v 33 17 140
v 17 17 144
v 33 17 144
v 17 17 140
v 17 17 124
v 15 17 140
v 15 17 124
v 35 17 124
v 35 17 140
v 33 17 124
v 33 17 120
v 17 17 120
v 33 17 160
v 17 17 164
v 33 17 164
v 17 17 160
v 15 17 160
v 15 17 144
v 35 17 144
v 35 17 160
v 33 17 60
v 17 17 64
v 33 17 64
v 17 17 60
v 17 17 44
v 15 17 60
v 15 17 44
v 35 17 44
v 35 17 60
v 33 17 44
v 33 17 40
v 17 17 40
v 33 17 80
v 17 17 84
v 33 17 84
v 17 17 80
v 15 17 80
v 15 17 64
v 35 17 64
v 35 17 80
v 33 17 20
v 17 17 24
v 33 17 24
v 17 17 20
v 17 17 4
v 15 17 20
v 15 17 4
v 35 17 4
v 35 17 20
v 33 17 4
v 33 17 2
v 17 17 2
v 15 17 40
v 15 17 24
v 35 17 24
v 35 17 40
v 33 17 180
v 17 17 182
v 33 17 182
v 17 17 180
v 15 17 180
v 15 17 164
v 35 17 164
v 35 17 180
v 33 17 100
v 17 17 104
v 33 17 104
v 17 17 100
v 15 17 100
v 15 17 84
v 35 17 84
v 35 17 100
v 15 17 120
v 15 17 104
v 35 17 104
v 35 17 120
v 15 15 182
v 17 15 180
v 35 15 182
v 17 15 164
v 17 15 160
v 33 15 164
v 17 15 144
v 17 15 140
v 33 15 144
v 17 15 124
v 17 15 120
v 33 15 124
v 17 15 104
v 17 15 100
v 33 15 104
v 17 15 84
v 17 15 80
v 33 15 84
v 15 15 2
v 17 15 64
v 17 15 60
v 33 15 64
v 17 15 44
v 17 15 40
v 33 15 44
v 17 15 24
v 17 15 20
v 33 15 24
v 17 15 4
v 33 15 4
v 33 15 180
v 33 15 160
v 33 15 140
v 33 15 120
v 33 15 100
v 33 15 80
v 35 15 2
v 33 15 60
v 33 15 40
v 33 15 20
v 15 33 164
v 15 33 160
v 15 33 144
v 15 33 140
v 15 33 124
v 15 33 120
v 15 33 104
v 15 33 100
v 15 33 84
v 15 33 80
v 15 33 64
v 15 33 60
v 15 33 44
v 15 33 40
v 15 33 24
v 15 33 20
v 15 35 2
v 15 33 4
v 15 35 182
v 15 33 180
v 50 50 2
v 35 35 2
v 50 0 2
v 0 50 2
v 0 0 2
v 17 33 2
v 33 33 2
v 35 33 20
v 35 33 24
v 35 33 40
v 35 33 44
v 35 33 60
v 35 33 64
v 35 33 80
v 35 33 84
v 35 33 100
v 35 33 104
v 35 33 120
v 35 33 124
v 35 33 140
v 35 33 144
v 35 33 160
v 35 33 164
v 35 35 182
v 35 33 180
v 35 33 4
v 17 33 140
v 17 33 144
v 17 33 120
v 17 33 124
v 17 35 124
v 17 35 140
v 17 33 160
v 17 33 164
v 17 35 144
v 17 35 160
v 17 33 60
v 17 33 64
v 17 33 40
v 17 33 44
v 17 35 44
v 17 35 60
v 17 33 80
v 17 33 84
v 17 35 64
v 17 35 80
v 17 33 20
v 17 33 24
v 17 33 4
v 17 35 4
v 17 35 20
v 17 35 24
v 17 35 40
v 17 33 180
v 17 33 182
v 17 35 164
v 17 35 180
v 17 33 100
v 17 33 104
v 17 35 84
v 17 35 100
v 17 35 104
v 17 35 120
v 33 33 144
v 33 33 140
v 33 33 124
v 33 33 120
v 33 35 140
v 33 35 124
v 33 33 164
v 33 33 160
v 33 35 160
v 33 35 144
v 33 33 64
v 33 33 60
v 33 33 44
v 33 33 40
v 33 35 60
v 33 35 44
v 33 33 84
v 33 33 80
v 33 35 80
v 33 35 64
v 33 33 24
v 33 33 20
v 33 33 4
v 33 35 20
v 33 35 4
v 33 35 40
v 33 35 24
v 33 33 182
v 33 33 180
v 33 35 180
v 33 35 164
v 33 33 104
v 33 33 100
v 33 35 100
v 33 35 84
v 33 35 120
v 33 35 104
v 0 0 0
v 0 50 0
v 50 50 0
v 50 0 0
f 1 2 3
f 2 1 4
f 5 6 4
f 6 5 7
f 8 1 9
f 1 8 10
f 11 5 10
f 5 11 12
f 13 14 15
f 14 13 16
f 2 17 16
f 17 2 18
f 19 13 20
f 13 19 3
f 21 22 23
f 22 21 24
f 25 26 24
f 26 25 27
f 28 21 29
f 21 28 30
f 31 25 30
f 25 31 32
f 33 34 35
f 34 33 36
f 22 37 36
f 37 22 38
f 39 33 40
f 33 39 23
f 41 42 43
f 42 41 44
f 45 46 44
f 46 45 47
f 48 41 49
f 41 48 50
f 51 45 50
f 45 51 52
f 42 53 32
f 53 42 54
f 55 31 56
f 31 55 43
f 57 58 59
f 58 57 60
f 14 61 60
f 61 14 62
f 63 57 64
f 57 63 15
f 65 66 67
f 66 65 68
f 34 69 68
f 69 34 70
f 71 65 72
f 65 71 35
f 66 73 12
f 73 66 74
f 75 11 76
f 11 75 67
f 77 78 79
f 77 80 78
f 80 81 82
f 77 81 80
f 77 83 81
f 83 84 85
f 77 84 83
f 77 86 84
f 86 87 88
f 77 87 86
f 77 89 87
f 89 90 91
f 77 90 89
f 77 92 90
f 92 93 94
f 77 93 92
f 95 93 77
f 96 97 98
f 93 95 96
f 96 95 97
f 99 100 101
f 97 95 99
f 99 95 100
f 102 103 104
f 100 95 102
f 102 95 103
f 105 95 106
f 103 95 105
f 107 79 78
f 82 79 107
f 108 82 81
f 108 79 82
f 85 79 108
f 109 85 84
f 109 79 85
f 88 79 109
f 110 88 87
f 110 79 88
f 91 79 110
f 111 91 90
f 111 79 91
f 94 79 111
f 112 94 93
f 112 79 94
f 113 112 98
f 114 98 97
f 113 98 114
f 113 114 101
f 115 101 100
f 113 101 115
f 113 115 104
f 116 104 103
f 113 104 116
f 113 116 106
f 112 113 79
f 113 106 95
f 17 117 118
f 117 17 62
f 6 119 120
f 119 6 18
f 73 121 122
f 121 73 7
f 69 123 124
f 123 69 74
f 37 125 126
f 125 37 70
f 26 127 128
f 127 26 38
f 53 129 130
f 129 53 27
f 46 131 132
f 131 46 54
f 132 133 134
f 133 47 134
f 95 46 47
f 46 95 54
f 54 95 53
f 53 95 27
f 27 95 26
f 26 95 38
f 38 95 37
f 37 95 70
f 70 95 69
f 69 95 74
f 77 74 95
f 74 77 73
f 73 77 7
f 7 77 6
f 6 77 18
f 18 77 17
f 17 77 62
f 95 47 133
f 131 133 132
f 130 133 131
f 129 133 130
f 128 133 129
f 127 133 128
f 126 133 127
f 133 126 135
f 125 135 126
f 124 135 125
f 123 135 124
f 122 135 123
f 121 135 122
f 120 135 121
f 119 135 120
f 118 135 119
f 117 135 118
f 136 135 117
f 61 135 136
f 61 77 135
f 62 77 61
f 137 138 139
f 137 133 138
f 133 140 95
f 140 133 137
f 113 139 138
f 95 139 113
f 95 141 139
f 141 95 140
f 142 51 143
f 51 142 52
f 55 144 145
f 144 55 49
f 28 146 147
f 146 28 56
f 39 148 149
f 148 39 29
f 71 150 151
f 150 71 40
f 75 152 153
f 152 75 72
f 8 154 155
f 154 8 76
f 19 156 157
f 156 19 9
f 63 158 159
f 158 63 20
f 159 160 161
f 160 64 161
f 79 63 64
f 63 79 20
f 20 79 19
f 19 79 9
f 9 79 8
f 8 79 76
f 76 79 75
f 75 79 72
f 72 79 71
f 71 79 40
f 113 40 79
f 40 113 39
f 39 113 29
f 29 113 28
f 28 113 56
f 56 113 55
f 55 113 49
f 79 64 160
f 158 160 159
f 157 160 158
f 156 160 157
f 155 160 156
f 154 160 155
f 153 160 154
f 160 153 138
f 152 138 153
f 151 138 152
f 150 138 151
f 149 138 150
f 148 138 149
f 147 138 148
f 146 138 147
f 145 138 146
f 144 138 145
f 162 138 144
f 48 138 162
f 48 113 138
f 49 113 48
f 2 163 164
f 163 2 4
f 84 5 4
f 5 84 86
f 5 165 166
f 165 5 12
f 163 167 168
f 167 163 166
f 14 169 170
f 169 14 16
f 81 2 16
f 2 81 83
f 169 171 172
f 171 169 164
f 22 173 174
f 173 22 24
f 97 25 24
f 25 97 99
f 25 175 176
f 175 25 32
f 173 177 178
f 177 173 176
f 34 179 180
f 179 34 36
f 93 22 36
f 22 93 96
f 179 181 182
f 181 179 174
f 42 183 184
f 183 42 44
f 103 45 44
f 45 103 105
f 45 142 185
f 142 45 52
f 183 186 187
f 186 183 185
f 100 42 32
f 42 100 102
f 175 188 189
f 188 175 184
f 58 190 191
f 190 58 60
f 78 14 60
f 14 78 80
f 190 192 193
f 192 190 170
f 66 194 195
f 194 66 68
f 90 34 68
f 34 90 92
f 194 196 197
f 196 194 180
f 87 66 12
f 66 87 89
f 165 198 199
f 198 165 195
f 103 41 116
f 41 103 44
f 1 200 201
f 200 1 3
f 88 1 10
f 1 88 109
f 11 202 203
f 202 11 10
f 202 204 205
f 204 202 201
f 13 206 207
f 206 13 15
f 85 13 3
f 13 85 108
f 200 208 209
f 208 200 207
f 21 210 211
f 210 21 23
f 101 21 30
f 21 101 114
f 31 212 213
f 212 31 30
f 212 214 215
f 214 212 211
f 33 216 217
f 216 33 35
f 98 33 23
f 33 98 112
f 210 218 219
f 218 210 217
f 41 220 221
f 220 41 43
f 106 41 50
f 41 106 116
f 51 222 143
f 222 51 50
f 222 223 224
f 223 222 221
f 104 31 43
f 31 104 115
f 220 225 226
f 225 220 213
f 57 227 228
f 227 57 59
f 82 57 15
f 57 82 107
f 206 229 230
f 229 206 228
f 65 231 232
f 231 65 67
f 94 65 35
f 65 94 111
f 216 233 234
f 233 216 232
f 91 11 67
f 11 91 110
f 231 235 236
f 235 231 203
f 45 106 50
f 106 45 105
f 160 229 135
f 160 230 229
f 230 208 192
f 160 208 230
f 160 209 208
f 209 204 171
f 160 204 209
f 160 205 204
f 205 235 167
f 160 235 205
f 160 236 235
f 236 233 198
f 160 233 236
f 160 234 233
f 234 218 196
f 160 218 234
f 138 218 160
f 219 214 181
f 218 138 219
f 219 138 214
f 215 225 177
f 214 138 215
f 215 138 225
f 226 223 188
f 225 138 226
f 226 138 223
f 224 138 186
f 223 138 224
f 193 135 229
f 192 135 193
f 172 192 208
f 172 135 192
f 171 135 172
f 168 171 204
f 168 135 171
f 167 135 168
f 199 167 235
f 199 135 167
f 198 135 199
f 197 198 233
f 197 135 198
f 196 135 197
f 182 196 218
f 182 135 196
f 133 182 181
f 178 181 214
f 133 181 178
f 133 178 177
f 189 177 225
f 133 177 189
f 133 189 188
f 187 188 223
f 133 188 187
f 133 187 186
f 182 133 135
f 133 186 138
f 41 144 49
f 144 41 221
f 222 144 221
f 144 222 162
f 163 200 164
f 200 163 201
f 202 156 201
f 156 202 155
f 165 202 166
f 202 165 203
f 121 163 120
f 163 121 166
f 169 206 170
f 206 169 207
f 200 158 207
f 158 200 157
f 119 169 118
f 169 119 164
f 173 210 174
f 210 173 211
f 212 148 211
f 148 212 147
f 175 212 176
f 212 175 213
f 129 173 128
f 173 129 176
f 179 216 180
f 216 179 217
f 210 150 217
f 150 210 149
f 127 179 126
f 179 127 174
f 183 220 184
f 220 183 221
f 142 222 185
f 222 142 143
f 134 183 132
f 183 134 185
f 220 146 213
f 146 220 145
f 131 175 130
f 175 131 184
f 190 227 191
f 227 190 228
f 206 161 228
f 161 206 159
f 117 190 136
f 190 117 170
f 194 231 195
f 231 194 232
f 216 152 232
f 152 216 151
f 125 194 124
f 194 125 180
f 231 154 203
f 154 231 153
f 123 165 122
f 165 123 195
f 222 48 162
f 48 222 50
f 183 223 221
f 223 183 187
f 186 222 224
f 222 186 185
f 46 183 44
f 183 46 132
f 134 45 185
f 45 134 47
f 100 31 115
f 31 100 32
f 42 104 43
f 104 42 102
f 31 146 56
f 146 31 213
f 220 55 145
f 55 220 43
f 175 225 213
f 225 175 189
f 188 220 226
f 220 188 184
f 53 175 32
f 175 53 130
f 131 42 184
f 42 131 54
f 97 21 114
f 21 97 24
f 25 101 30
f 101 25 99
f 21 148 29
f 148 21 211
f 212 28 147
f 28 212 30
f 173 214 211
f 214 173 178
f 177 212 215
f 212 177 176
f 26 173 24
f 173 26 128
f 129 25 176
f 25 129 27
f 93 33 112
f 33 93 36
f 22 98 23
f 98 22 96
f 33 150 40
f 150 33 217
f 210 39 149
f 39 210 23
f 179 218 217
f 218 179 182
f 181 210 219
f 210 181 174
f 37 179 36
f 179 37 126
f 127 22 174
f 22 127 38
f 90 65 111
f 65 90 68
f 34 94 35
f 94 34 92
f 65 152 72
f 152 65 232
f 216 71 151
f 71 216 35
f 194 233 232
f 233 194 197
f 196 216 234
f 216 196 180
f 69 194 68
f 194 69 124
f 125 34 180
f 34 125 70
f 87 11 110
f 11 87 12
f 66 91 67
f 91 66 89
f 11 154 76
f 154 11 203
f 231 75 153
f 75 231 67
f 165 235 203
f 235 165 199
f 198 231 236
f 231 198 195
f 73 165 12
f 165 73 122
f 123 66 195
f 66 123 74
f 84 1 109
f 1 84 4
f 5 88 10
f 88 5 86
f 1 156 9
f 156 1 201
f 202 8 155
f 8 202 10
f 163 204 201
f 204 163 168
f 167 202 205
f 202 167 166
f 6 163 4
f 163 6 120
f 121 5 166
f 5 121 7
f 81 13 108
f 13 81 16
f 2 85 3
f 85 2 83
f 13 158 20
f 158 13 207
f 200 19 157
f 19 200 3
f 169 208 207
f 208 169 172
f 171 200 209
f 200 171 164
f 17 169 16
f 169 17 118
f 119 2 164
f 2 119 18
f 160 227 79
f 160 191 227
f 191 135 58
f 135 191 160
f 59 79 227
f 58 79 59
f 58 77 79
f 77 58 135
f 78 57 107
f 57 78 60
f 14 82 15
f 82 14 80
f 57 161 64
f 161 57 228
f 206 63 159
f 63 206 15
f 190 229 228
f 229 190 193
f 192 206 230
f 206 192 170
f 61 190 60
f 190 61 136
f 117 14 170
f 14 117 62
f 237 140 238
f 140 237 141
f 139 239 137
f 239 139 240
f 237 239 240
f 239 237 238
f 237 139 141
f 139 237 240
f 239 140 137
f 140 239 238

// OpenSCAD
//:: Telco Tower 2G
// 20251219, Ondrej DURAS (dury) Nokia
//
// Toto by mala byt akoze telekomunikacna veza
// s dvomi 180% sektorovymi antenami RAN 
// a dvomi linkovymi antenami pre tranzit

/* [Previews] */
preview="basic"; // [basic,variants,slider,movie,plate]
// basic - je zakladny pohlad, ked sa vytvaraju komponenty ...tu vsetky vo svojej finalnej polohe
// veriants - sluzi na odskusanie roznych parametrov ...aj tych ktore nikdy vyrobene nebudu
// slider - kontrolny pohlad na prekontrolovanie prienikov materialu roznych komponent cez seba a pod..
// movie - vyzualizacia celej zostavy v pohybe
// plate - vsetky komponenty v jednej rovine tak, ako ich vyrobi 3Dtlaciaren


/* [Dimensions] */
// hrana zakladnej dosky podstavca
baseRange=50; // [20:10:100]
// hrubka zakladnej dosky podstavca
baseTick=2; // [1:0.2:4]

// sirka veze
towerWidth=20; // [10:1:30]
// vyska jedneho poschodia
towerStep=20;  // [10:1:30]
// pocet poschodi
towerLevels=8; // [1:1:10]
// hrubka konstrukcie
towerTick=2;   // [1:0.2:4]

/* [Colors] */
// Farba zakladne dosky podstavy
baseColor="#108010";
// Farba zakladneho materialu veze
towerColor="#404040";

//:: Skryte prepocty rozmerov
echo("Calculations...");  // this is the 1st command, to cout out the rest
towerWo=towerWidth;
towerHo=towerStep;
towerWi=towerWidth-2*towerTick;
towerHi=towerStep-2*towerTick;
//towerHigh=4*baseStep*towerLevels;

module towerPattern(wo=10,ho=20,wi=6,hi=16,ext=2) {
    // toto je jedno konstrukcne okienko telco veze
    x1=(wo-wi)/2; y1=(ho-hi)/2;
    linear_extrude(ext) { difference() {
        translate([0,0]) square([wo,ho]);
        translate([x1,y1]) square([wi,hi]);
    } }
}

module squareTower(wo=towerWo,ho=towerHo,wi=towerWi,hi=towerHi,ext=towerTick,levels=towerLevels) {
    // wo  - Width Outside  - vonkajsi rozmer jedneho okienka
    // ho  - Height Outside - vonkajsia vyska jedneho okienka
    // wi  - Width Inside   - vnutorna sirka jedneho okienka
    // hi  - Height Inside  - vnutorna vyska jedneho okrienka
    // ext - Extrusion      - vytiahnutie polygonu jedneho okienka/hlbka konstrukcnej listy
    // levels - pocet okienok tvoriacich vysku veze 
    union() {
    for(i=[0:1:levels]) { color(towerColor) {
        y=i*ho;
        translate([0,ext,y])     rotate([90,0,  0]) towerPattern(wo,ho,wi,hi,ext);
        translate([wo-ext,0,y])  rotate([90,0, 90]) towerPattern(wo,ho,wi,hi,ext);
        translate([wo,wo-ext,y]) rotate([90,0,180]) towerPattern(wo,ho,wi,hi,ext);
        translate([ext,wo,y])    rotate([90,0,270]) towerPattern(wo,ho,wi,hi,ext);
    } } // levels of tower
    } //union
}

module tower2R2T() {
    // zelena podlozka, ktora cini oporu vezi
    translate([0,0,0])
        color(baseColor)
        cube([baseRange,baseRange,baseTick]);
    // telco veza so stvorcovou podstavou, zakladnej velkosti
    x1=(baseRange-towerWidth)/2;
    translate([x1,x1,baseTick])
        color(towerColor)
        squareTower(); // default dimensions
}

//:: Previews
if(preview=="basic") {
    translate([0,0,0])
        tower2R2T();
}
if(preview=="variants") {
    translate([0,0,0]) 
        color(baseColor)
        cube([4*baseRange,4*baseRange,baseTick]);

    // telco veza so stvorcovou podstavou, zakladnej velkosti
    x1=(baseRange-towerWidth)/2;
    translate([x1,x1,baseTick])
        color(towerColor)
        squareTower(); // default dimensions
 
    translate([x1,x1+3*baseRange,baseTick])
        color(towerColor)
        squareTower();

    translate([x1+3*baseRange,x1+3*baseRange,baseTick])
        color(towerColor)
        squareTower();

   
    translate([1*baseRange,x1,baseTick])
        color(towerColor)
        squareTower(10,10,6,6,2,10);

    translate([2*baseRange,x1,baseTick])
        color(towerColor)
        squareTower(12,10,8,6,2,10);

    translate([3*baseRange,x1,baseTick])
        color(towerColor)
        squareTower(13,10,9,6,2,10);

    translate([1*baseRange,x1+1*baseRange,baseTick])
        color(towerColor)
        squareTower(14,10,10,6,2,10);

    translate([2*baseRange,x1+1*baseRange,baseTick])
        color(towerColor)
        squareTower(15,10,11,6,2,10);

    translate([3*baseRange,x1+1*baseRange,baseTick])
        color(towerColor)
        squareTower(16,10,12,6,2,10);

    translate([1*baseRange,x1+2*baseRange,baseTick])
        color(towerColor)
        squareTower(17,10,13,6,2,10);

    translate([2*baseRange,x1+2*baseRange,baseTick])
        color(towerColor)
        squareTower(18,10,14,6,2,10);

    translate([3*baseRange,x1+2*baseRange,baseTick])
        color(towerColor)
        squareTower(19,10,15,6,2,10);
}
if(preview=="slider") {

}
if(preview=="movie") {

}
if(preview=="plate") {

}
// --- end ---
